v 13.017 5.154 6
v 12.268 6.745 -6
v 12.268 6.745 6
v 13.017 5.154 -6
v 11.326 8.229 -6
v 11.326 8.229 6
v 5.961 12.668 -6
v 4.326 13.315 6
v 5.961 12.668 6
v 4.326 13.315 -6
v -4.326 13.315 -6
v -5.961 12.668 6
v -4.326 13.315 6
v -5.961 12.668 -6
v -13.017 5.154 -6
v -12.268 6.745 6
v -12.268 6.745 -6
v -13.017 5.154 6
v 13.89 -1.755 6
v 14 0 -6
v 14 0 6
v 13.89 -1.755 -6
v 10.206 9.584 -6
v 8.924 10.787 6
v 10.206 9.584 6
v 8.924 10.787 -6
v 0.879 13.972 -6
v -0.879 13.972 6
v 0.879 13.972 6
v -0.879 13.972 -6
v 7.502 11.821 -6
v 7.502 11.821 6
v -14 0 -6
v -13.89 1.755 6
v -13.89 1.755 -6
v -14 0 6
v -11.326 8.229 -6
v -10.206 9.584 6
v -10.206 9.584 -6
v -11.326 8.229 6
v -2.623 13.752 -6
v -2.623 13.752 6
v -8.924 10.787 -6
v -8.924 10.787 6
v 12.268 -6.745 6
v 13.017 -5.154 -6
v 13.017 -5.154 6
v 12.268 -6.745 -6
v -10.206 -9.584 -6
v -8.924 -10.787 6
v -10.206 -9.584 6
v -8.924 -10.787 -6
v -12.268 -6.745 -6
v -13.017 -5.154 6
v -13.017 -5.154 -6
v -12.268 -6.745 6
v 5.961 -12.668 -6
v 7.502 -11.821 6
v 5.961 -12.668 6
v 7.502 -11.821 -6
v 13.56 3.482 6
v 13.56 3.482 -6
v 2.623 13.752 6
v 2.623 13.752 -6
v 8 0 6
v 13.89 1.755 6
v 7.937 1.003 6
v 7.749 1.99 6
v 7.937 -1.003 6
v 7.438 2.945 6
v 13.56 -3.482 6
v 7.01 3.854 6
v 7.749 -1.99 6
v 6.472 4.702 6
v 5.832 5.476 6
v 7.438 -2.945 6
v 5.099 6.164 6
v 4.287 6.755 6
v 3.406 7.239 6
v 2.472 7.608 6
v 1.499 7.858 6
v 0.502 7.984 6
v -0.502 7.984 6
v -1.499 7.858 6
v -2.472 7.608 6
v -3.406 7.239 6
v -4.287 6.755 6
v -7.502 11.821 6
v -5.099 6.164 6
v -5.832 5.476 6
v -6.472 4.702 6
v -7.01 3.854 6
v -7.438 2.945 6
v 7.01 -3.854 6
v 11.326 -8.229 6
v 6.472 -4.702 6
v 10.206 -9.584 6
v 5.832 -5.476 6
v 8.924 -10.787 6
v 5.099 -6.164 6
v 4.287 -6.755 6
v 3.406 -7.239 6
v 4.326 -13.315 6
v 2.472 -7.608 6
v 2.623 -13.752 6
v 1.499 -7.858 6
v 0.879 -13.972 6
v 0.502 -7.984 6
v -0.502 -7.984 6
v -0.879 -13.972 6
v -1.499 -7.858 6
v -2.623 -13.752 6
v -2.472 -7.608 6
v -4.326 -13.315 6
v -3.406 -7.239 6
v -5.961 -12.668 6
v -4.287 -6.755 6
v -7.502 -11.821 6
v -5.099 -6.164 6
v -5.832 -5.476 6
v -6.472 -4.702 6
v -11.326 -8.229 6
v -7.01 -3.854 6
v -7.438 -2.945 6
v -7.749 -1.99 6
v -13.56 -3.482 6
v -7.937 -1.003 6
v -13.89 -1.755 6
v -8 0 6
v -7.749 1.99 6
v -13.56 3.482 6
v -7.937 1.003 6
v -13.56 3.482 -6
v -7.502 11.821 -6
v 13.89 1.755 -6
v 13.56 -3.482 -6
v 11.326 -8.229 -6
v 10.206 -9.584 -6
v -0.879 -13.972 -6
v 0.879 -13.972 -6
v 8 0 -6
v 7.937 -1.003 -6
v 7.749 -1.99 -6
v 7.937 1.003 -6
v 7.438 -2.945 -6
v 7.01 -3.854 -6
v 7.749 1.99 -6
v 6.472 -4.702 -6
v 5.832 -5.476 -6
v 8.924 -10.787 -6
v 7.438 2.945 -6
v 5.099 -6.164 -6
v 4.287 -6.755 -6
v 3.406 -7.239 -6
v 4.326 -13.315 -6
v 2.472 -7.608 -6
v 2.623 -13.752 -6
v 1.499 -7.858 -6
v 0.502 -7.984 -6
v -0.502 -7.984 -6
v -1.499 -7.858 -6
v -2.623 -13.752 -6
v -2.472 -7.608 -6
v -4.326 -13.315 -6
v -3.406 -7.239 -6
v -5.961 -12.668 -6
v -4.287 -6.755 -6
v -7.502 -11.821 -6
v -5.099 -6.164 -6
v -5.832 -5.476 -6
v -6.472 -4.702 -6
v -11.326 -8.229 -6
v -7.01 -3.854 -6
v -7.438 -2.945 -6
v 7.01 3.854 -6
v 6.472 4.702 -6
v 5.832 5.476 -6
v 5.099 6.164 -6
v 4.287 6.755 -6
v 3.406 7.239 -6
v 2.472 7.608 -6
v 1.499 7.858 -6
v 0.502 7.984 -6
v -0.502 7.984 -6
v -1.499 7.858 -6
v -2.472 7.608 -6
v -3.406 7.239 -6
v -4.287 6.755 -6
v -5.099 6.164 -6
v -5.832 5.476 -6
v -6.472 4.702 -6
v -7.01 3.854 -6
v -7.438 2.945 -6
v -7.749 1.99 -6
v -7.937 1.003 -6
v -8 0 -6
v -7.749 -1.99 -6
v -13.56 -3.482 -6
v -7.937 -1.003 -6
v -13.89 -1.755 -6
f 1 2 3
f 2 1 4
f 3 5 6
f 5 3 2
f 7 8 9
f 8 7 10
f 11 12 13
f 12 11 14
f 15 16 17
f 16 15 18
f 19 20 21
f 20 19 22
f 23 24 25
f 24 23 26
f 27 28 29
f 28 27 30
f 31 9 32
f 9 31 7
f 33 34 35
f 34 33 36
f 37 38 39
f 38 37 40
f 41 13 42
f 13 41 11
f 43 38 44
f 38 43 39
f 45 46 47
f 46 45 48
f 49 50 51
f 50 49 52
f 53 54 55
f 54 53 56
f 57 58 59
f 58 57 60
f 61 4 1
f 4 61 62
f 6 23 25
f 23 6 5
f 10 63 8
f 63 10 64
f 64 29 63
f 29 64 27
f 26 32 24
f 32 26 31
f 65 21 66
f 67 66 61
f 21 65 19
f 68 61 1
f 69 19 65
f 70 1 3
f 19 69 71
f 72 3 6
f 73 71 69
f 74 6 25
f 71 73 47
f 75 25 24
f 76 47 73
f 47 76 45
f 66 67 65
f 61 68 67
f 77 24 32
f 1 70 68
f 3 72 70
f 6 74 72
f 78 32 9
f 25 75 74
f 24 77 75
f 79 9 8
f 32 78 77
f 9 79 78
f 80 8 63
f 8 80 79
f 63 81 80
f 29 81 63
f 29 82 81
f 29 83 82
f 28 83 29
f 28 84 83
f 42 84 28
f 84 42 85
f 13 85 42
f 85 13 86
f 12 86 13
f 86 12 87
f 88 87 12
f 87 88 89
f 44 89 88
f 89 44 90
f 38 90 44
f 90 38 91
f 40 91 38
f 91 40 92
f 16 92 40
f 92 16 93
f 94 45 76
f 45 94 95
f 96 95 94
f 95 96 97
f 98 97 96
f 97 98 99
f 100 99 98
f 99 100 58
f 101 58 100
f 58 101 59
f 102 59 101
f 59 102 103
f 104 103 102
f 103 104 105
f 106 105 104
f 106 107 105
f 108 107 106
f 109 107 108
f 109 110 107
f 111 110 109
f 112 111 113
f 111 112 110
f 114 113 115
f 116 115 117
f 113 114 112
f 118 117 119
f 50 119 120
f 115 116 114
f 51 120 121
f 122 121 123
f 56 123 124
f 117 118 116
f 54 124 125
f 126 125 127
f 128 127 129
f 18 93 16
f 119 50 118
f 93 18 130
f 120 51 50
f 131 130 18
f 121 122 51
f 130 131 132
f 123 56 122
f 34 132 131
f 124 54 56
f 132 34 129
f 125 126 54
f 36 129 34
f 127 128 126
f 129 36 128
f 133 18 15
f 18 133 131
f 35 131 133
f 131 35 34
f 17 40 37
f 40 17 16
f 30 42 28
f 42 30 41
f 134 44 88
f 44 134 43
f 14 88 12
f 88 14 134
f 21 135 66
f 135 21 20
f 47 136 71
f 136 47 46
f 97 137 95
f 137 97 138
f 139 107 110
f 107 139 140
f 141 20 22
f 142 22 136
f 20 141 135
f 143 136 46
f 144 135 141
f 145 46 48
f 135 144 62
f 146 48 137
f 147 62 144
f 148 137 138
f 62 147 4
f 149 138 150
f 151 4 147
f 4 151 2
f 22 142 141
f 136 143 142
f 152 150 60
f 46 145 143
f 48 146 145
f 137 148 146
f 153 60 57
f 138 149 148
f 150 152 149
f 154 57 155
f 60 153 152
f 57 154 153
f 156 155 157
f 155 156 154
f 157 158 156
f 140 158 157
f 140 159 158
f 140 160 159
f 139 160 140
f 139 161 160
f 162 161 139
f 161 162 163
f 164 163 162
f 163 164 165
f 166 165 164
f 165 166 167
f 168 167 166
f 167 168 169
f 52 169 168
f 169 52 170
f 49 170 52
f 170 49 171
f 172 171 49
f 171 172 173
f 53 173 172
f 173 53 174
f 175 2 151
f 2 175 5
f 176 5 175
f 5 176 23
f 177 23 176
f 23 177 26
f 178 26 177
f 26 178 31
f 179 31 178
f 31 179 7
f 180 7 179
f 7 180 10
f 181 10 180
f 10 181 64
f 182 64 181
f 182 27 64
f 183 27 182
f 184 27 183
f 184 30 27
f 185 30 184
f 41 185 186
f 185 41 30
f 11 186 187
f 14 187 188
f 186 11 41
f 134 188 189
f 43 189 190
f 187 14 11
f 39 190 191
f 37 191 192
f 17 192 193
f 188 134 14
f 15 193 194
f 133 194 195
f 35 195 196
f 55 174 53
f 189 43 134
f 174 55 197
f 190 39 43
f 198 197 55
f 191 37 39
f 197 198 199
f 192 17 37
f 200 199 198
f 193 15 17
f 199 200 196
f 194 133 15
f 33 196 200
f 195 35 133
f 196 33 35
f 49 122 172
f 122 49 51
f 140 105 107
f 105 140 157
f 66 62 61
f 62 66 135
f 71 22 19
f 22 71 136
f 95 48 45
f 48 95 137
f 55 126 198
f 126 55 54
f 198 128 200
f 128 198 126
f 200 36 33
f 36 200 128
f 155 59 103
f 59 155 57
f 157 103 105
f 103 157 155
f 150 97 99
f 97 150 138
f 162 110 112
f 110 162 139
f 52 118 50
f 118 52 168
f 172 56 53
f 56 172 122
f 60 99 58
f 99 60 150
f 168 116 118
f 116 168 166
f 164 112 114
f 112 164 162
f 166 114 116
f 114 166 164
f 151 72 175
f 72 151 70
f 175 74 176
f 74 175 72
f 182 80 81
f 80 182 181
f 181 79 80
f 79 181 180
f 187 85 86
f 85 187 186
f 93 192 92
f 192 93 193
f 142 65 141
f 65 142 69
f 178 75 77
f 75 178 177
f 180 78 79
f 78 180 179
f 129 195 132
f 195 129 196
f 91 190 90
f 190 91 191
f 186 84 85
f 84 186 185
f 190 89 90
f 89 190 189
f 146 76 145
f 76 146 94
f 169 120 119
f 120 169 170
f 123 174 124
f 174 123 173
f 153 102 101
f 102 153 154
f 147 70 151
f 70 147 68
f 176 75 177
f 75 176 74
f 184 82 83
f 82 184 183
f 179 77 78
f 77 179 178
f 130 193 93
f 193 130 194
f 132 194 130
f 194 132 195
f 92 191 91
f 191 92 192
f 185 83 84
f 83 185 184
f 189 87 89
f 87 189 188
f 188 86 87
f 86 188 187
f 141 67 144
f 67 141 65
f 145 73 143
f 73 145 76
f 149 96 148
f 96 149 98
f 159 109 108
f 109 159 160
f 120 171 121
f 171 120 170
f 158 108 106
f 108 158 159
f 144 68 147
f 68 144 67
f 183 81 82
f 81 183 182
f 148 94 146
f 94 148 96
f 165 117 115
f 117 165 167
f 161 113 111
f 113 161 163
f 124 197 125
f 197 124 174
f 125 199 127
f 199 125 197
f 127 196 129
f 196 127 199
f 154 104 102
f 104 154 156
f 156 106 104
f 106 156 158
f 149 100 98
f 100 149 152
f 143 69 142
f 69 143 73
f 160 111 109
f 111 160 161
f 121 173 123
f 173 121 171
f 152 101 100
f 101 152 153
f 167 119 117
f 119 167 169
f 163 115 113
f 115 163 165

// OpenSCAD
$fn = 50;


difference() {
	union() {
		translate(v = [0, 0, -6.0000000000]) {
			cylinder(h = 12, r = 14.0000000000);
		}
	}
	union() {
		translate(v = [0, 0, -100.0000000000]) {
			cylinder(h = 200, r = 8);
		}
	}
}
